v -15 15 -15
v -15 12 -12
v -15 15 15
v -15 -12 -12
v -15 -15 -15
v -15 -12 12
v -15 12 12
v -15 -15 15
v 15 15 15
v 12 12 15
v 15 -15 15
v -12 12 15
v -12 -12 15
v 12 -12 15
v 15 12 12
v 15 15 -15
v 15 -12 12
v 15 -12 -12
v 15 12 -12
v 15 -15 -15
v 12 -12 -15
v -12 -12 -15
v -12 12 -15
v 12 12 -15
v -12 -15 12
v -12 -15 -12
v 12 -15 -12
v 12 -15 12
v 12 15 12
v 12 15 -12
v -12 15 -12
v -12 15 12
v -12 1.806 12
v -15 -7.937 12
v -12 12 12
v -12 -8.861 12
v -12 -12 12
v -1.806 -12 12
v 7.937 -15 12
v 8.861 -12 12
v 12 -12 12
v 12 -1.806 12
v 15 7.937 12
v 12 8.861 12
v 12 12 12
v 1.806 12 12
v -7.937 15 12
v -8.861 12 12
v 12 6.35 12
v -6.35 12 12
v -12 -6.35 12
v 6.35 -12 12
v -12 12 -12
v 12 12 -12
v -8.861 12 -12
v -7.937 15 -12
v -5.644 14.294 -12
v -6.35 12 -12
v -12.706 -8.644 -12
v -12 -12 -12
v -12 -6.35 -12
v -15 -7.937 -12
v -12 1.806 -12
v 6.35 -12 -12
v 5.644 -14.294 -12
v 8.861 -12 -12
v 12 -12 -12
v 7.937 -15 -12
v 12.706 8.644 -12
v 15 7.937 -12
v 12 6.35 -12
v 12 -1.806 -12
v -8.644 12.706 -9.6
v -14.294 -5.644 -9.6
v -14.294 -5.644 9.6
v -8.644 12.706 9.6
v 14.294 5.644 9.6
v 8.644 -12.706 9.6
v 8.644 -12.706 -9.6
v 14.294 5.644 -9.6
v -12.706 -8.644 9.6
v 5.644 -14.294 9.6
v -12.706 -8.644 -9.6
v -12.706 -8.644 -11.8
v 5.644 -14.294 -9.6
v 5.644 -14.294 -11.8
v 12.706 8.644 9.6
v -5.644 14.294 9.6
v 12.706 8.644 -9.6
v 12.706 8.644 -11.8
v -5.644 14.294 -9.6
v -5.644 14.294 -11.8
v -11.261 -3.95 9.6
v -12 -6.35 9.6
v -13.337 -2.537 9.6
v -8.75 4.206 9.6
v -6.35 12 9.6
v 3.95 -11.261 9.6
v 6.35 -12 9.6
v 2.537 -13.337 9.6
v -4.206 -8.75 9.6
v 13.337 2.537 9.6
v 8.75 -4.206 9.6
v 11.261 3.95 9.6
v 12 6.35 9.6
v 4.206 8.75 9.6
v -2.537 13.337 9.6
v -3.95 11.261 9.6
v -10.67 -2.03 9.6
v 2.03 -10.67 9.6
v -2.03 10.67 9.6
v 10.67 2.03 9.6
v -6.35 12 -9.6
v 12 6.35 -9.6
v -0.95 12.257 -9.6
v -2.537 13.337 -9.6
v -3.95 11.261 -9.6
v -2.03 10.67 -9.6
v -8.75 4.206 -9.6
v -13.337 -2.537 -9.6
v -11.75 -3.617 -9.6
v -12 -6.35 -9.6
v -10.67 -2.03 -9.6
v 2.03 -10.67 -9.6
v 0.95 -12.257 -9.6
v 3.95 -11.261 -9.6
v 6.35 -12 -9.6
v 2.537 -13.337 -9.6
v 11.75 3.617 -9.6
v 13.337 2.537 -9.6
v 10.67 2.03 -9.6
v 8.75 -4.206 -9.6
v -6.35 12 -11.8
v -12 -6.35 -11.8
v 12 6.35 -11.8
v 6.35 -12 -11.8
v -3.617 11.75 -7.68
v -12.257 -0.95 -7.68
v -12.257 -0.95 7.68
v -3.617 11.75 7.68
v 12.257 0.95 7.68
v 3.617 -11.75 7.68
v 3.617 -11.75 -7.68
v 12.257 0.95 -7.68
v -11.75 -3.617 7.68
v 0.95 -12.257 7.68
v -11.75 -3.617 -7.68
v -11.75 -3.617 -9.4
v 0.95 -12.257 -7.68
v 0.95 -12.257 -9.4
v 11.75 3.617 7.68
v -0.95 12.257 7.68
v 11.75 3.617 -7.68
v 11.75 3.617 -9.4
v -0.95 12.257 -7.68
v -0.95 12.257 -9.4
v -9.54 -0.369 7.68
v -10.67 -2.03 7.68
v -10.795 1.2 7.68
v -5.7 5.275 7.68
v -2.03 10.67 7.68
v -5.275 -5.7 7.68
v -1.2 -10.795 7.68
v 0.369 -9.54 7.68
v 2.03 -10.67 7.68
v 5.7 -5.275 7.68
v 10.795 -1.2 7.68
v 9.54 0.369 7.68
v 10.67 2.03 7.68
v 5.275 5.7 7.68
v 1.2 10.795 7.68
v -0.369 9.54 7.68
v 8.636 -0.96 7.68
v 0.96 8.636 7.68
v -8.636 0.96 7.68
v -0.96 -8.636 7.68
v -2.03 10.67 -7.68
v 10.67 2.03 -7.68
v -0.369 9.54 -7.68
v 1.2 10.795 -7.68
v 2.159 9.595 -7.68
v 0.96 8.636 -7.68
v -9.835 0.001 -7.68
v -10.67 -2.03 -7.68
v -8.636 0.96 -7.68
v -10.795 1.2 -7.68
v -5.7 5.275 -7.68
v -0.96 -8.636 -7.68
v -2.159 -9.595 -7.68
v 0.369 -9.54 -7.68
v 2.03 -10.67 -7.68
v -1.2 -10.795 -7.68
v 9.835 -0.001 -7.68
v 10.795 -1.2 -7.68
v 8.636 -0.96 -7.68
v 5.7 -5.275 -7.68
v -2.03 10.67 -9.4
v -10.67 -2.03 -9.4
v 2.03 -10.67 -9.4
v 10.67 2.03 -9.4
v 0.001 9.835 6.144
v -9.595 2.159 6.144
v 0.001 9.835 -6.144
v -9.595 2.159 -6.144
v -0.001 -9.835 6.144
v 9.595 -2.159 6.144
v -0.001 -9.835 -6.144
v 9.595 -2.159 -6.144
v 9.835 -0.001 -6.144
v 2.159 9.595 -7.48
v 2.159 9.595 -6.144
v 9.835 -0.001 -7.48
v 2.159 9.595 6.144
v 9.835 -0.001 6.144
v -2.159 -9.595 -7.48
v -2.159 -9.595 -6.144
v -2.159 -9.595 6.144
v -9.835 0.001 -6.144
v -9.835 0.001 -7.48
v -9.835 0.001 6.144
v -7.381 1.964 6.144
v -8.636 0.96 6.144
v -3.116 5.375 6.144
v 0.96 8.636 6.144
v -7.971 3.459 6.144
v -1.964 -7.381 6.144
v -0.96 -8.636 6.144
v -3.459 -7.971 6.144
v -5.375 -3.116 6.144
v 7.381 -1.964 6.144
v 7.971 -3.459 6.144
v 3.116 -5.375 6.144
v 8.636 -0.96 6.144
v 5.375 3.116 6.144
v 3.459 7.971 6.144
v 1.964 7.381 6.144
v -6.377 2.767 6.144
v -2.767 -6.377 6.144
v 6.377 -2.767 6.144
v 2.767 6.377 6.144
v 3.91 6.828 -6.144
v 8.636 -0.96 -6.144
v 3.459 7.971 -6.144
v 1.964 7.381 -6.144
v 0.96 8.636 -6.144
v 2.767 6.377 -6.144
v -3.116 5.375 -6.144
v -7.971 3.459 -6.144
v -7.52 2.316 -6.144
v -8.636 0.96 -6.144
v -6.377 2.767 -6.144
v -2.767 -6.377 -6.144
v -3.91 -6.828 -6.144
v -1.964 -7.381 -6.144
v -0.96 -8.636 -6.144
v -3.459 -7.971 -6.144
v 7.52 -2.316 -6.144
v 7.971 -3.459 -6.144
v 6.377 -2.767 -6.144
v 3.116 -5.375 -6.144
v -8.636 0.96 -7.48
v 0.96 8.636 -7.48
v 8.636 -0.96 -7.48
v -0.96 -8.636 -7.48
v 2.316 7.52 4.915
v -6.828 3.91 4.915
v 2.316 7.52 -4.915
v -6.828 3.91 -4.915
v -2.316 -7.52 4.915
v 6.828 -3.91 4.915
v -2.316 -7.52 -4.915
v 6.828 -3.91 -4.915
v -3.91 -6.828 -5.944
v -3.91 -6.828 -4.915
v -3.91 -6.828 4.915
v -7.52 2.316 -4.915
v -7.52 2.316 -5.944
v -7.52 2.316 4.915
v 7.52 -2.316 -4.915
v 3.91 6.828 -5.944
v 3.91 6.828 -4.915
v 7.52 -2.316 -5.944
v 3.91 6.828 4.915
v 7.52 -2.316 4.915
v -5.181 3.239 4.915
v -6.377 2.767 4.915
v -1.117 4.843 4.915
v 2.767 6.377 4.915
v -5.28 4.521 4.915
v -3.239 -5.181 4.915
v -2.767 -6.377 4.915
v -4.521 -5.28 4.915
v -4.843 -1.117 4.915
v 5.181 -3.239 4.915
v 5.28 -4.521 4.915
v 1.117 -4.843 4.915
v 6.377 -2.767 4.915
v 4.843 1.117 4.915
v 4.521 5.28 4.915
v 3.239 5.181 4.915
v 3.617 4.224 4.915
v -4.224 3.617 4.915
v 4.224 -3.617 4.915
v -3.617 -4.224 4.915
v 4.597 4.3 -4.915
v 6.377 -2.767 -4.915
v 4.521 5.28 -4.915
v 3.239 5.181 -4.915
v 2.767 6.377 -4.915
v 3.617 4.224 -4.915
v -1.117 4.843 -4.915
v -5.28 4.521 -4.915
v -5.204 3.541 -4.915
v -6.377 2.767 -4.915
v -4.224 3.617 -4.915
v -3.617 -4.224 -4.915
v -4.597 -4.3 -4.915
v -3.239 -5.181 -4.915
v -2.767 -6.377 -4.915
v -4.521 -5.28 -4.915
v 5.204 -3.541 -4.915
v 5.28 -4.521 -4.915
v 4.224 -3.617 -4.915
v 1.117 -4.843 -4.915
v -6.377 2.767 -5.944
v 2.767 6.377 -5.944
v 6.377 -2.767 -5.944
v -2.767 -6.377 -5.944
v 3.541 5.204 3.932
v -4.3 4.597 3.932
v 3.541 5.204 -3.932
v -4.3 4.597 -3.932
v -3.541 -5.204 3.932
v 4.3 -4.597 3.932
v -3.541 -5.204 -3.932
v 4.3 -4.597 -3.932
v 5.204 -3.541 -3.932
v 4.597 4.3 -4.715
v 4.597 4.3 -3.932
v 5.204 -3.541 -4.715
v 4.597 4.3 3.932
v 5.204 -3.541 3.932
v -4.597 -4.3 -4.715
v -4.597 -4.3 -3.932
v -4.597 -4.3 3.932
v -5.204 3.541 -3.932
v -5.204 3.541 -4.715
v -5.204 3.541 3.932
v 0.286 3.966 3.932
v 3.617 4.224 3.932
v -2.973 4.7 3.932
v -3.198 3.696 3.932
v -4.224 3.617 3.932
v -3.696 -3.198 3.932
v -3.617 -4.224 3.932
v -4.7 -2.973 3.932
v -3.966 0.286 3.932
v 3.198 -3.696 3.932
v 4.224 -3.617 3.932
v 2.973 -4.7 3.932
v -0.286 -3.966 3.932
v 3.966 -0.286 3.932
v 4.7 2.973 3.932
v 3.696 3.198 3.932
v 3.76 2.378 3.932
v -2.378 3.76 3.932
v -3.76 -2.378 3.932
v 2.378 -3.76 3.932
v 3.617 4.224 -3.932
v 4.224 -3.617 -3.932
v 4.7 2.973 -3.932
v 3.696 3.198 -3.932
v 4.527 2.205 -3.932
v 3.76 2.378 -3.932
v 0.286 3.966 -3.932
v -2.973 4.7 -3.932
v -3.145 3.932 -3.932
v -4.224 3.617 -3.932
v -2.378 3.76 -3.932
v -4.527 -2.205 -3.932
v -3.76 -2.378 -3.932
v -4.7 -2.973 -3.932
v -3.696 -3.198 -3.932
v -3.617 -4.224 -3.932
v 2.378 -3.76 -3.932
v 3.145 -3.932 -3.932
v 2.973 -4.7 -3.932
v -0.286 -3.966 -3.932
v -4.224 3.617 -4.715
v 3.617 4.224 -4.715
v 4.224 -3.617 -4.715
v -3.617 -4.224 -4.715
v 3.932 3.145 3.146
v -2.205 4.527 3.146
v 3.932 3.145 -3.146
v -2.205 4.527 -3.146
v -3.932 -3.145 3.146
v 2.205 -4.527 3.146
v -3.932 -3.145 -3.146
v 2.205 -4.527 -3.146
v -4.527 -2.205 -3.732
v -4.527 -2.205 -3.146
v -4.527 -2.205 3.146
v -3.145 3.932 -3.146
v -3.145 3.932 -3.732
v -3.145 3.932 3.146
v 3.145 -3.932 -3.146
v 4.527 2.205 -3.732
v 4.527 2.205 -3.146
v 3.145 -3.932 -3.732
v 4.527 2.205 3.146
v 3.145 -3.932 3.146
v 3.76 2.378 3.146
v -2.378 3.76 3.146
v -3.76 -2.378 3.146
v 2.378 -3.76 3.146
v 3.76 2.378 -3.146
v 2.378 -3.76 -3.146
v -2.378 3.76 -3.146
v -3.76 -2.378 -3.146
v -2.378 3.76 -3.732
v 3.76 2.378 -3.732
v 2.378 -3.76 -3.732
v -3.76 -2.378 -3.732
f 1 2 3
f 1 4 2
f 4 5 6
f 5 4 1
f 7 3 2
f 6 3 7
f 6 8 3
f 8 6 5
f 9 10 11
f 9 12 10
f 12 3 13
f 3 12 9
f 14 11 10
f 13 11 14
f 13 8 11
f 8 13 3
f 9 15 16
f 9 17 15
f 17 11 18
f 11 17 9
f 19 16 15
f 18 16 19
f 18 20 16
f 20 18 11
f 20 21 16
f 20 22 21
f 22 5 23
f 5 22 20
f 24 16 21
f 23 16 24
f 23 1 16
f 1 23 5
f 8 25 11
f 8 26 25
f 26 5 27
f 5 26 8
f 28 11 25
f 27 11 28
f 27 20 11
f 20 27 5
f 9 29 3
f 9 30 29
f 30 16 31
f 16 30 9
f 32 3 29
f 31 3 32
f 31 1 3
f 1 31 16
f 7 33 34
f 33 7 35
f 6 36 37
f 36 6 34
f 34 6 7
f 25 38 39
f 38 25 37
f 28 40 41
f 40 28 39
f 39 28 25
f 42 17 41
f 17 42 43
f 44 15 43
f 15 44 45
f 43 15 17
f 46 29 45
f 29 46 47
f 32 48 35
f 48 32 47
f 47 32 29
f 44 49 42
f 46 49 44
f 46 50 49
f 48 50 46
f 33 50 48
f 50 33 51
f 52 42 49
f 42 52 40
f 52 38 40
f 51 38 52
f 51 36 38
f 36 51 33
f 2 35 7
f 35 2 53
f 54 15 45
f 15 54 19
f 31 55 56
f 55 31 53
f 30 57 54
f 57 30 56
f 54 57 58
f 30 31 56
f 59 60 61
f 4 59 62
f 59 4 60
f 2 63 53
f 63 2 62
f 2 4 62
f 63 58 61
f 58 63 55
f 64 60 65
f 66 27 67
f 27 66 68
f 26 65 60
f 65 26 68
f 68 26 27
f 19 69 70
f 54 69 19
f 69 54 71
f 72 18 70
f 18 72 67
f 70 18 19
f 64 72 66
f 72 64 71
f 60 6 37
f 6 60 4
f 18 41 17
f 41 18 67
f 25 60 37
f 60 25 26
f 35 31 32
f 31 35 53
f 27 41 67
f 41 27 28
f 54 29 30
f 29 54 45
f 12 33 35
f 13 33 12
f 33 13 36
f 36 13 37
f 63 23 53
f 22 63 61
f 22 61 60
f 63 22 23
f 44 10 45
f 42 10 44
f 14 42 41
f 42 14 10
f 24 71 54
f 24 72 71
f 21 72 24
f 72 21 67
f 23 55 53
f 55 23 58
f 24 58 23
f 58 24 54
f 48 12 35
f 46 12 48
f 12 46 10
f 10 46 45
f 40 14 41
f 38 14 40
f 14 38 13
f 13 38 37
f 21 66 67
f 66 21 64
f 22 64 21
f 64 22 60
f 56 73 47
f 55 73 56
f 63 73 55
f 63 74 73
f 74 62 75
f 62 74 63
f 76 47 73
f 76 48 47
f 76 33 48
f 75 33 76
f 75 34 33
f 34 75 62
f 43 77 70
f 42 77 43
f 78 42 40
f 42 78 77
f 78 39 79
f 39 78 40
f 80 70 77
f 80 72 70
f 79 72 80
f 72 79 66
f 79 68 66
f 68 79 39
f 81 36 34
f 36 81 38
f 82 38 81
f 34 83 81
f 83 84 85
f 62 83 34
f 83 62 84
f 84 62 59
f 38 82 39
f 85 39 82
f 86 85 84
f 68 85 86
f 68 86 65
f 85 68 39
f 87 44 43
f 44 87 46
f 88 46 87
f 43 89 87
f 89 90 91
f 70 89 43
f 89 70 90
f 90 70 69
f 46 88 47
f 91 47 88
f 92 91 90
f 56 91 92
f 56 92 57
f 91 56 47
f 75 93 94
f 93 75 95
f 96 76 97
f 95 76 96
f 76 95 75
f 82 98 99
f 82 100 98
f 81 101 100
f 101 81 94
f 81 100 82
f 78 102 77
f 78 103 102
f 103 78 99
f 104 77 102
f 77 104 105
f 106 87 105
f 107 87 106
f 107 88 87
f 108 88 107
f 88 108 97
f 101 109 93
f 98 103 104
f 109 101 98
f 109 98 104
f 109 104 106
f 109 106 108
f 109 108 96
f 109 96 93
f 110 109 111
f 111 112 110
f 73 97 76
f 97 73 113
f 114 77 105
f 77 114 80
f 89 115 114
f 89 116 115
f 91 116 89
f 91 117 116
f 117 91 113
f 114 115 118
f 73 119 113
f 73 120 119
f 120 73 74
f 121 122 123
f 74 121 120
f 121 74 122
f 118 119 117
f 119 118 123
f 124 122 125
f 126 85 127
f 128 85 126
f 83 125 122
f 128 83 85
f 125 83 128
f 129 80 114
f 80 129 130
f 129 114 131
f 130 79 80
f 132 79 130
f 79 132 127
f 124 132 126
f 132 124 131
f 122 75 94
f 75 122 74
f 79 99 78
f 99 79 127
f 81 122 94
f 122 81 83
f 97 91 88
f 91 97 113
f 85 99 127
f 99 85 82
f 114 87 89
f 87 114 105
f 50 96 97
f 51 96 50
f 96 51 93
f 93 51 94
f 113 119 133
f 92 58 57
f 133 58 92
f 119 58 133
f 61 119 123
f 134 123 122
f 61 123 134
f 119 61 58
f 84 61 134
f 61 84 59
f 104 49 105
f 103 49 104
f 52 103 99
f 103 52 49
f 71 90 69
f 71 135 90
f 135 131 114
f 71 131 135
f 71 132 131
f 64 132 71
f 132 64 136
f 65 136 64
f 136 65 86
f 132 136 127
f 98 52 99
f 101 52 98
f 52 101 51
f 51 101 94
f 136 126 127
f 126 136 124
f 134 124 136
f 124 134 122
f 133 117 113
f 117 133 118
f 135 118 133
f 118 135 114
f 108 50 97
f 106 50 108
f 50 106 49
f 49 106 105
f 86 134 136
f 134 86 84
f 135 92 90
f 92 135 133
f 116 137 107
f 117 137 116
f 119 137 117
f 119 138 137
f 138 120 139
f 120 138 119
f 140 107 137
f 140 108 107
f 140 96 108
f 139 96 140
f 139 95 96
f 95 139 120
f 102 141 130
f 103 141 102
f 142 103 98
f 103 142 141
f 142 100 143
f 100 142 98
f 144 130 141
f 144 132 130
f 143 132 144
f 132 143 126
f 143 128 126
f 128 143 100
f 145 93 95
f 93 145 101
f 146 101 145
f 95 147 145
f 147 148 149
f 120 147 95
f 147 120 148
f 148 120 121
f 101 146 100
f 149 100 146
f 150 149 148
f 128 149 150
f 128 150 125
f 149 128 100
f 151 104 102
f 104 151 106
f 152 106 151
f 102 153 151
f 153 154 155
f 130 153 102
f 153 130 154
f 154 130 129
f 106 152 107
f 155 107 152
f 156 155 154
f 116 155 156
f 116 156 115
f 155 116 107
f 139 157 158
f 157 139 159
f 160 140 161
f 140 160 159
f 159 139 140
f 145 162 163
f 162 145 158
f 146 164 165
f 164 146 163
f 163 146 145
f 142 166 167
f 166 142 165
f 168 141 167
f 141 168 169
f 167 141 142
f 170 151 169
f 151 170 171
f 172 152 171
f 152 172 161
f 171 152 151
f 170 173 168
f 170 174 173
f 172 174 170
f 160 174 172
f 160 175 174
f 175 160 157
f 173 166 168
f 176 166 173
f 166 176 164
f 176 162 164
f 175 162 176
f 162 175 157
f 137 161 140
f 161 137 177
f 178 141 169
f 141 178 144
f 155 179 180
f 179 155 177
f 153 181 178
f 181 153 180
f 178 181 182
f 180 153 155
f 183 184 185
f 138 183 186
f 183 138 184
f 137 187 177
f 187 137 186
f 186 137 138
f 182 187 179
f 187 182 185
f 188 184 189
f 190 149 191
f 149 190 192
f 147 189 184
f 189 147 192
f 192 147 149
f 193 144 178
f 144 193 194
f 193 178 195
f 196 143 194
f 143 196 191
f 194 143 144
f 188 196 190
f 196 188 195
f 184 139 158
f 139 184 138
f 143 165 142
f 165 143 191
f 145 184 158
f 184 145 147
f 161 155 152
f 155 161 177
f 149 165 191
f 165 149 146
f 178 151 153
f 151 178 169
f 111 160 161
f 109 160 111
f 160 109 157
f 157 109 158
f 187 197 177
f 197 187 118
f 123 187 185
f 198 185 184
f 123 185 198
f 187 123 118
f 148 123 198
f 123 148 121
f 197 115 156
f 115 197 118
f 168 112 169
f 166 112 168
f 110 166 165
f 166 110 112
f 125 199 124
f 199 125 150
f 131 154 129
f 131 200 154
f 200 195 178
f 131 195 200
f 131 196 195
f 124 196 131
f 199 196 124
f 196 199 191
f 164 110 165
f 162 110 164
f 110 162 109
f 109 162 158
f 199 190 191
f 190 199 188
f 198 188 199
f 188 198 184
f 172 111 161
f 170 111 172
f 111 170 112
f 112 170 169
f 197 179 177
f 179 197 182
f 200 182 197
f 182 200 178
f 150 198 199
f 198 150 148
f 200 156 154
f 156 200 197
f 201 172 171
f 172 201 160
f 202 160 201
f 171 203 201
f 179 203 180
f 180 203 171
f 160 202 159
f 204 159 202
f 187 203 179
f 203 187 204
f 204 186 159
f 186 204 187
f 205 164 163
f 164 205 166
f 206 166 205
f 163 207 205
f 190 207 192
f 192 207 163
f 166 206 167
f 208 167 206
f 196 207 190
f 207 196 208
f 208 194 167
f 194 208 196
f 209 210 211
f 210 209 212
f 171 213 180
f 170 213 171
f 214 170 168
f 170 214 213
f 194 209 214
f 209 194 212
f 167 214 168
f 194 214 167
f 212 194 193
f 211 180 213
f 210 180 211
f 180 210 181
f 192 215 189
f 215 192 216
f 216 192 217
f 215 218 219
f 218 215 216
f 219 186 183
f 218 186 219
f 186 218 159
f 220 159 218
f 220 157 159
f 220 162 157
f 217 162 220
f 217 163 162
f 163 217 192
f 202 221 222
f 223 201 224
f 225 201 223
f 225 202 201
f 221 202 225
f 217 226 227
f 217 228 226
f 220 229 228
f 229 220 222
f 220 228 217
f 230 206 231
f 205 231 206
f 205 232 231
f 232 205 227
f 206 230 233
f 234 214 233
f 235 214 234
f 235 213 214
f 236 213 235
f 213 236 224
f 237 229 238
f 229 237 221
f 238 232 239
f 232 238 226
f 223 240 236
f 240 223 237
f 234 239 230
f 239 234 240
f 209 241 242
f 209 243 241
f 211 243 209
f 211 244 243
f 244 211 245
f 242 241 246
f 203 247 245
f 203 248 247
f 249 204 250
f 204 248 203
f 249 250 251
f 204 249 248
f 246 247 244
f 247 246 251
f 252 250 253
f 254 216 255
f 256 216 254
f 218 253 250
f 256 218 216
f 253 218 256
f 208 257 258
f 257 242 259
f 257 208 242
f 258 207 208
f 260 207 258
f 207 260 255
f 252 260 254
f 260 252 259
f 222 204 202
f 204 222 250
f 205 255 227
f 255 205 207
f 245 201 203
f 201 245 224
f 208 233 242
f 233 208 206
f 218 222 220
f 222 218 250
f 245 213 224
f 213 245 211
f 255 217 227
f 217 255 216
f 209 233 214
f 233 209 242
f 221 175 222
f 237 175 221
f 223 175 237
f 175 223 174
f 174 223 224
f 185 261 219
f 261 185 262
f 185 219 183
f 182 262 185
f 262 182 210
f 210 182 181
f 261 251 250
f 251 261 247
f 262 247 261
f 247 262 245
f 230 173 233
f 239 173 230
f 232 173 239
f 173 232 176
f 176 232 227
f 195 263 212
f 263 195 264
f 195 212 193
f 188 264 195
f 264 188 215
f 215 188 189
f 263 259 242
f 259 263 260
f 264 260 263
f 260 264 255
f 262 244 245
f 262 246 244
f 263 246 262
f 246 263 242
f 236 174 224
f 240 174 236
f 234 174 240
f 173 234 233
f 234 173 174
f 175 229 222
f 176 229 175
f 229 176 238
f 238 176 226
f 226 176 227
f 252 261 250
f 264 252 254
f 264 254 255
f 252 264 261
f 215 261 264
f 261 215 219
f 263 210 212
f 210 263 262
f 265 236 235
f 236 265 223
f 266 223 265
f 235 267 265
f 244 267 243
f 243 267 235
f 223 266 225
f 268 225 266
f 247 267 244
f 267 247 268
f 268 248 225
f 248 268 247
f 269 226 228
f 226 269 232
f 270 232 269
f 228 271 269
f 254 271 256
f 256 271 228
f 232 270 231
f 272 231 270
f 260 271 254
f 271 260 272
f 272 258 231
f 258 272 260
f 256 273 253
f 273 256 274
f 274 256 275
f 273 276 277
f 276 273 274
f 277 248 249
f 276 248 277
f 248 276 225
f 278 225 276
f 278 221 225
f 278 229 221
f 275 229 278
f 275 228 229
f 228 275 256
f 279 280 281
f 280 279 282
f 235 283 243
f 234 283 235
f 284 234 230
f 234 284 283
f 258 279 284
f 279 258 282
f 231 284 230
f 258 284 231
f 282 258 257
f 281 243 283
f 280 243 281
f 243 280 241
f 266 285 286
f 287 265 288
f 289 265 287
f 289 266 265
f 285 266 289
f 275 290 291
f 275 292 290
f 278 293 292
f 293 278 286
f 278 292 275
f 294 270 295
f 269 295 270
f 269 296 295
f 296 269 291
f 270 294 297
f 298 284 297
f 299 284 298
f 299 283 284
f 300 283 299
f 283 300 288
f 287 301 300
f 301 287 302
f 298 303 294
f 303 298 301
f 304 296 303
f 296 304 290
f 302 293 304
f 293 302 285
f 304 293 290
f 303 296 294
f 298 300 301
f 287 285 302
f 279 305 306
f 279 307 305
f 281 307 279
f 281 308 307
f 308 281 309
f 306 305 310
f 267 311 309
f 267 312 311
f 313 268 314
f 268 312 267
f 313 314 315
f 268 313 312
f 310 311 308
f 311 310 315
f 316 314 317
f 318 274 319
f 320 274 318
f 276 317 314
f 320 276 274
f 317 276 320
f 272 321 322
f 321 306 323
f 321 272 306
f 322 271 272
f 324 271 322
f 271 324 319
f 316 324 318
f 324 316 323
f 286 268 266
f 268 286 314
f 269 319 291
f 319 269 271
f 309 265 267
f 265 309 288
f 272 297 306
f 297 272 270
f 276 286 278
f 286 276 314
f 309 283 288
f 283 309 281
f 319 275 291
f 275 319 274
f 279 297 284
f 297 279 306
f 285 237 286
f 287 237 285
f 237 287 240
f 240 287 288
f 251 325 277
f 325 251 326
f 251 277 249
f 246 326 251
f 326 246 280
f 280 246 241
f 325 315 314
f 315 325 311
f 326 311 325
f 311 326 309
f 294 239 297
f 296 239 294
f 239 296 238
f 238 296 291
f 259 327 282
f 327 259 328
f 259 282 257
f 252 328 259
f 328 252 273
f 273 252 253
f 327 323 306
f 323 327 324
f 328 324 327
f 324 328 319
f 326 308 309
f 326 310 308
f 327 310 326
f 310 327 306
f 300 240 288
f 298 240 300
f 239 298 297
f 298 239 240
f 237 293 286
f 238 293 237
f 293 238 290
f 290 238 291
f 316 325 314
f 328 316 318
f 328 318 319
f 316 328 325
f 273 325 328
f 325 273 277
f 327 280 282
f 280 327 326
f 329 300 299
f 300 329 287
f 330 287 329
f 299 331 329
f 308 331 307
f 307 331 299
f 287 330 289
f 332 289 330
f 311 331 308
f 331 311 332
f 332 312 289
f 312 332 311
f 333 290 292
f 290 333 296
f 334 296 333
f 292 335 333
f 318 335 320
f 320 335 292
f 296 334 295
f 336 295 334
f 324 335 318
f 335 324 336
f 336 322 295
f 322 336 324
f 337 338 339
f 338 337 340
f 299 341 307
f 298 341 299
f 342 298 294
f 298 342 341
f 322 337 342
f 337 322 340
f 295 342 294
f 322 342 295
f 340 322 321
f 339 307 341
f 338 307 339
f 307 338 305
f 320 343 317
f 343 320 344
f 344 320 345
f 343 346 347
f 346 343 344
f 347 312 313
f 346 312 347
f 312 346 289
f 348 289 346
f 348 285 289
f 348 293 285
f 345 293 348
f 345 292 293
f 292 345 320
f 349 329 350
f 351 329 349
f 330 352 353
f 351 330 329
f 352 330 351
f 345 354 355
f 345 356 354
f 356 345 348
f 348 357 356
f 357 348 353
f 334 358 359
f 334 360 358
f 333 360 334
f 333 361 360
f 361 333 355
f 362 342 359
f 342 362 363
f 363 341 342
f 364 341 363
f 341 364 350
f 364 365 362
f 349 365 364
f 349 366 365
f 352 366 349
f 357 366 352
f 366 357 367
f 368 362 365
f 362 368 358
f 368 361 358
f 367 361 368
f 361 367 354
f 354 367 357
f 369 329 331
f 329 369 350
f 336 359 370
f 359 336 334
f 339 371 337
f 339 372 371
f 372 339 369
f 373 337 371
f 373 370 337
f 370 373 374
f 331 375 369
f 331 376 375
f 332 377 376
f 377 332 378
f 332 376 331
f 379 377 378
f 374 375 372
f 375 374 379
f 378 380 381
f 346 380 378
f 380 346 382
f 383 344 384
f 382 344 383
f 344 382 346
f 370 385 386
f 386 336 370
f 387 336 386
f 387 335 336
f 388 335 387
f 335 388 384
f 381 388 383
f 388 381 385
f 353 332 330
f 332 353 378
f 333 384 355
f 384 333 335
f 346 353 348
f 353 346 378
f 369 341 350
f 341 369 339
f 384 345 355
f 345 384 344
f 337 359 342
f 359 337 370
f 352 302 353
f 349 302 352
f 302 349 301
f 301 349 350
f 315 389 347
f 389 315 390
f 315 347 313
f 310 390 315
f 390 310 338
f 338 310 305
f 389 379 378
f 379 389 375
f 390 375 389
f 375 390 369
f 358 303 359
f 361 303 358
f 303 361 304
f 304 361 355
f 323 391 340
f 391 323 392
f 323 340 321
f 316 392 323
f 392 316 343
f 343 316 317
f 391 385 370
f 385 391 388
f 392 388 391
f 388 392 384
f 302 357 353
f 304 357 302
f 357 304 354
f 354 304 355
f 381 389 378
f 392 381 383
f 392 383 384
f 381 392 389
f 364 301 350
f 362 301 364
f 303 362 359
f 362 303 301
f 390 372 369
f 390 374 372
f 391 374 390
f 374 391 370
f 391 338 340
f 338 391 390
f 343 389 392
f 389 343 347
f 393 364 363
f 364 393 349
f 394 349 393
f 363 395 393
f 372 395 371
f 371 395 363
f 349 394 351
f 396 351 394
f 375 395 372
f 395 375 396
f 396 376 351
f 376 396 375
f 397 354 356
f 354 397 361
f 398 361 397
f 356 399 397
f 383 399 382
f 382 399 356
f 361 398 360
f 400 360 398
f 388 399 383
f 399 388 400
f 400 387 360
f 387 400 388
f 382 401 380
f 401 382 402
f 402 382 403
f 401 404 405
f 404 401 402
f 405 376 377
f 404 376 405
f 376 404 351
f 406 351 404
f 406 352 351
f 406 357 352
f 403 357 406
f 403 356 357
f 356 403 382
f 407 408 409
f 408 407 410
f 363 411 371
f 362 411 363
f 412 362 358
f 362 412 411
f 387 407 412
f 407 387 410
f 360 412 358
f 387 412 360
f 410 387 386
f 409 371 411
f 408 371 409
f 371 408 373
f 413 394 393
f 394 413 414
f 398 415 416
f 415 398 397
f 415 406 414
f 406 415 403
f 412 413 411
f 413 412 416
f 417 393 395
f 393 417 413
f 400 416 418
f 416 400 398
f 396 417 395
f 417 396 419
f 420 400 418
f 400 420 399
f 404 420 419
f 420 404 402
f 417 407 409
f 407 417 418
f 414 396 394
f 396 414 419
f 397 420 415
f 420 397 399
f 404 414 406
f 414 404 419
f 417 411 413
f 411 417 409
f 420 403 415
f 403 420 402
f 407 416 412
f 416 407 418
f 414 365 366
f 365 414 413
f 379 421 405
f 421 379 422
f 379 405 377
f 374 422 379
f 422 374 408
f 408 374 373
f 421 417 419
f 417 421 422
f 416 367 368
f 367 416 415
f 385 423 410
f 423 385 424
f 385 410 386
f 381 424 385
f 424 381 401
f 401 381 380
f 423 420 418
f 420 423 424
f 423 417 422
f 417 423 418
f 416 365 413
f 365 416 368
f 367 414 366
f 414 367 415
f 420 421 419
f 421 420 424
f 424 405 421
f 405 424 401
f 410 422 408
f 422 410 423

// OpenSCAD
WALL_THICKNESS = 3;
SIZE = 30;
STEPS = 7;
TOTAL_ROTATION = 70;
LAYER = 0.2;

module make_cube_edges(size, rotation, thickness, etch_base) {
    //thickness = WALL_THICKNESS;
    d1 = size - thickness*2; // to keep walls
    d2 = size + thickness*2 + 2; // to dig face
    rotate([0, 0, rotation])
    difference() {
        cube([size, size, size], true); // full cube
        cube([d2, d1, d1], true); // dig along X axis
        cube([d1, d2, d1], true); // dig along Y axis
        cube([d1, d1, d2], true); // dig along Z axis
        
        if (etch_base)
            translate([0, 0, -size/2])
            cube([d1, d2, LAYER*2], true); // dig along Z axis
    }        
}

SIZE2 = SIZE - WALL_THICKNESS*2;
F = SIZE2/SIZE;
A = acos(SIZE/SIZE2/sqrt(2)) - 45;

module recurse(to_go, size, angle, thickness, first) {
    if (to_go) {
        echo(thickness);
        make_cube_edges(size, angle, thickness, !first);
        recurse(to_go -1, size*F, angle + A, thickness*F, false);
    }
}

recurse(STEPS, SIZE, 0, WALL_THICKNESS, true);
